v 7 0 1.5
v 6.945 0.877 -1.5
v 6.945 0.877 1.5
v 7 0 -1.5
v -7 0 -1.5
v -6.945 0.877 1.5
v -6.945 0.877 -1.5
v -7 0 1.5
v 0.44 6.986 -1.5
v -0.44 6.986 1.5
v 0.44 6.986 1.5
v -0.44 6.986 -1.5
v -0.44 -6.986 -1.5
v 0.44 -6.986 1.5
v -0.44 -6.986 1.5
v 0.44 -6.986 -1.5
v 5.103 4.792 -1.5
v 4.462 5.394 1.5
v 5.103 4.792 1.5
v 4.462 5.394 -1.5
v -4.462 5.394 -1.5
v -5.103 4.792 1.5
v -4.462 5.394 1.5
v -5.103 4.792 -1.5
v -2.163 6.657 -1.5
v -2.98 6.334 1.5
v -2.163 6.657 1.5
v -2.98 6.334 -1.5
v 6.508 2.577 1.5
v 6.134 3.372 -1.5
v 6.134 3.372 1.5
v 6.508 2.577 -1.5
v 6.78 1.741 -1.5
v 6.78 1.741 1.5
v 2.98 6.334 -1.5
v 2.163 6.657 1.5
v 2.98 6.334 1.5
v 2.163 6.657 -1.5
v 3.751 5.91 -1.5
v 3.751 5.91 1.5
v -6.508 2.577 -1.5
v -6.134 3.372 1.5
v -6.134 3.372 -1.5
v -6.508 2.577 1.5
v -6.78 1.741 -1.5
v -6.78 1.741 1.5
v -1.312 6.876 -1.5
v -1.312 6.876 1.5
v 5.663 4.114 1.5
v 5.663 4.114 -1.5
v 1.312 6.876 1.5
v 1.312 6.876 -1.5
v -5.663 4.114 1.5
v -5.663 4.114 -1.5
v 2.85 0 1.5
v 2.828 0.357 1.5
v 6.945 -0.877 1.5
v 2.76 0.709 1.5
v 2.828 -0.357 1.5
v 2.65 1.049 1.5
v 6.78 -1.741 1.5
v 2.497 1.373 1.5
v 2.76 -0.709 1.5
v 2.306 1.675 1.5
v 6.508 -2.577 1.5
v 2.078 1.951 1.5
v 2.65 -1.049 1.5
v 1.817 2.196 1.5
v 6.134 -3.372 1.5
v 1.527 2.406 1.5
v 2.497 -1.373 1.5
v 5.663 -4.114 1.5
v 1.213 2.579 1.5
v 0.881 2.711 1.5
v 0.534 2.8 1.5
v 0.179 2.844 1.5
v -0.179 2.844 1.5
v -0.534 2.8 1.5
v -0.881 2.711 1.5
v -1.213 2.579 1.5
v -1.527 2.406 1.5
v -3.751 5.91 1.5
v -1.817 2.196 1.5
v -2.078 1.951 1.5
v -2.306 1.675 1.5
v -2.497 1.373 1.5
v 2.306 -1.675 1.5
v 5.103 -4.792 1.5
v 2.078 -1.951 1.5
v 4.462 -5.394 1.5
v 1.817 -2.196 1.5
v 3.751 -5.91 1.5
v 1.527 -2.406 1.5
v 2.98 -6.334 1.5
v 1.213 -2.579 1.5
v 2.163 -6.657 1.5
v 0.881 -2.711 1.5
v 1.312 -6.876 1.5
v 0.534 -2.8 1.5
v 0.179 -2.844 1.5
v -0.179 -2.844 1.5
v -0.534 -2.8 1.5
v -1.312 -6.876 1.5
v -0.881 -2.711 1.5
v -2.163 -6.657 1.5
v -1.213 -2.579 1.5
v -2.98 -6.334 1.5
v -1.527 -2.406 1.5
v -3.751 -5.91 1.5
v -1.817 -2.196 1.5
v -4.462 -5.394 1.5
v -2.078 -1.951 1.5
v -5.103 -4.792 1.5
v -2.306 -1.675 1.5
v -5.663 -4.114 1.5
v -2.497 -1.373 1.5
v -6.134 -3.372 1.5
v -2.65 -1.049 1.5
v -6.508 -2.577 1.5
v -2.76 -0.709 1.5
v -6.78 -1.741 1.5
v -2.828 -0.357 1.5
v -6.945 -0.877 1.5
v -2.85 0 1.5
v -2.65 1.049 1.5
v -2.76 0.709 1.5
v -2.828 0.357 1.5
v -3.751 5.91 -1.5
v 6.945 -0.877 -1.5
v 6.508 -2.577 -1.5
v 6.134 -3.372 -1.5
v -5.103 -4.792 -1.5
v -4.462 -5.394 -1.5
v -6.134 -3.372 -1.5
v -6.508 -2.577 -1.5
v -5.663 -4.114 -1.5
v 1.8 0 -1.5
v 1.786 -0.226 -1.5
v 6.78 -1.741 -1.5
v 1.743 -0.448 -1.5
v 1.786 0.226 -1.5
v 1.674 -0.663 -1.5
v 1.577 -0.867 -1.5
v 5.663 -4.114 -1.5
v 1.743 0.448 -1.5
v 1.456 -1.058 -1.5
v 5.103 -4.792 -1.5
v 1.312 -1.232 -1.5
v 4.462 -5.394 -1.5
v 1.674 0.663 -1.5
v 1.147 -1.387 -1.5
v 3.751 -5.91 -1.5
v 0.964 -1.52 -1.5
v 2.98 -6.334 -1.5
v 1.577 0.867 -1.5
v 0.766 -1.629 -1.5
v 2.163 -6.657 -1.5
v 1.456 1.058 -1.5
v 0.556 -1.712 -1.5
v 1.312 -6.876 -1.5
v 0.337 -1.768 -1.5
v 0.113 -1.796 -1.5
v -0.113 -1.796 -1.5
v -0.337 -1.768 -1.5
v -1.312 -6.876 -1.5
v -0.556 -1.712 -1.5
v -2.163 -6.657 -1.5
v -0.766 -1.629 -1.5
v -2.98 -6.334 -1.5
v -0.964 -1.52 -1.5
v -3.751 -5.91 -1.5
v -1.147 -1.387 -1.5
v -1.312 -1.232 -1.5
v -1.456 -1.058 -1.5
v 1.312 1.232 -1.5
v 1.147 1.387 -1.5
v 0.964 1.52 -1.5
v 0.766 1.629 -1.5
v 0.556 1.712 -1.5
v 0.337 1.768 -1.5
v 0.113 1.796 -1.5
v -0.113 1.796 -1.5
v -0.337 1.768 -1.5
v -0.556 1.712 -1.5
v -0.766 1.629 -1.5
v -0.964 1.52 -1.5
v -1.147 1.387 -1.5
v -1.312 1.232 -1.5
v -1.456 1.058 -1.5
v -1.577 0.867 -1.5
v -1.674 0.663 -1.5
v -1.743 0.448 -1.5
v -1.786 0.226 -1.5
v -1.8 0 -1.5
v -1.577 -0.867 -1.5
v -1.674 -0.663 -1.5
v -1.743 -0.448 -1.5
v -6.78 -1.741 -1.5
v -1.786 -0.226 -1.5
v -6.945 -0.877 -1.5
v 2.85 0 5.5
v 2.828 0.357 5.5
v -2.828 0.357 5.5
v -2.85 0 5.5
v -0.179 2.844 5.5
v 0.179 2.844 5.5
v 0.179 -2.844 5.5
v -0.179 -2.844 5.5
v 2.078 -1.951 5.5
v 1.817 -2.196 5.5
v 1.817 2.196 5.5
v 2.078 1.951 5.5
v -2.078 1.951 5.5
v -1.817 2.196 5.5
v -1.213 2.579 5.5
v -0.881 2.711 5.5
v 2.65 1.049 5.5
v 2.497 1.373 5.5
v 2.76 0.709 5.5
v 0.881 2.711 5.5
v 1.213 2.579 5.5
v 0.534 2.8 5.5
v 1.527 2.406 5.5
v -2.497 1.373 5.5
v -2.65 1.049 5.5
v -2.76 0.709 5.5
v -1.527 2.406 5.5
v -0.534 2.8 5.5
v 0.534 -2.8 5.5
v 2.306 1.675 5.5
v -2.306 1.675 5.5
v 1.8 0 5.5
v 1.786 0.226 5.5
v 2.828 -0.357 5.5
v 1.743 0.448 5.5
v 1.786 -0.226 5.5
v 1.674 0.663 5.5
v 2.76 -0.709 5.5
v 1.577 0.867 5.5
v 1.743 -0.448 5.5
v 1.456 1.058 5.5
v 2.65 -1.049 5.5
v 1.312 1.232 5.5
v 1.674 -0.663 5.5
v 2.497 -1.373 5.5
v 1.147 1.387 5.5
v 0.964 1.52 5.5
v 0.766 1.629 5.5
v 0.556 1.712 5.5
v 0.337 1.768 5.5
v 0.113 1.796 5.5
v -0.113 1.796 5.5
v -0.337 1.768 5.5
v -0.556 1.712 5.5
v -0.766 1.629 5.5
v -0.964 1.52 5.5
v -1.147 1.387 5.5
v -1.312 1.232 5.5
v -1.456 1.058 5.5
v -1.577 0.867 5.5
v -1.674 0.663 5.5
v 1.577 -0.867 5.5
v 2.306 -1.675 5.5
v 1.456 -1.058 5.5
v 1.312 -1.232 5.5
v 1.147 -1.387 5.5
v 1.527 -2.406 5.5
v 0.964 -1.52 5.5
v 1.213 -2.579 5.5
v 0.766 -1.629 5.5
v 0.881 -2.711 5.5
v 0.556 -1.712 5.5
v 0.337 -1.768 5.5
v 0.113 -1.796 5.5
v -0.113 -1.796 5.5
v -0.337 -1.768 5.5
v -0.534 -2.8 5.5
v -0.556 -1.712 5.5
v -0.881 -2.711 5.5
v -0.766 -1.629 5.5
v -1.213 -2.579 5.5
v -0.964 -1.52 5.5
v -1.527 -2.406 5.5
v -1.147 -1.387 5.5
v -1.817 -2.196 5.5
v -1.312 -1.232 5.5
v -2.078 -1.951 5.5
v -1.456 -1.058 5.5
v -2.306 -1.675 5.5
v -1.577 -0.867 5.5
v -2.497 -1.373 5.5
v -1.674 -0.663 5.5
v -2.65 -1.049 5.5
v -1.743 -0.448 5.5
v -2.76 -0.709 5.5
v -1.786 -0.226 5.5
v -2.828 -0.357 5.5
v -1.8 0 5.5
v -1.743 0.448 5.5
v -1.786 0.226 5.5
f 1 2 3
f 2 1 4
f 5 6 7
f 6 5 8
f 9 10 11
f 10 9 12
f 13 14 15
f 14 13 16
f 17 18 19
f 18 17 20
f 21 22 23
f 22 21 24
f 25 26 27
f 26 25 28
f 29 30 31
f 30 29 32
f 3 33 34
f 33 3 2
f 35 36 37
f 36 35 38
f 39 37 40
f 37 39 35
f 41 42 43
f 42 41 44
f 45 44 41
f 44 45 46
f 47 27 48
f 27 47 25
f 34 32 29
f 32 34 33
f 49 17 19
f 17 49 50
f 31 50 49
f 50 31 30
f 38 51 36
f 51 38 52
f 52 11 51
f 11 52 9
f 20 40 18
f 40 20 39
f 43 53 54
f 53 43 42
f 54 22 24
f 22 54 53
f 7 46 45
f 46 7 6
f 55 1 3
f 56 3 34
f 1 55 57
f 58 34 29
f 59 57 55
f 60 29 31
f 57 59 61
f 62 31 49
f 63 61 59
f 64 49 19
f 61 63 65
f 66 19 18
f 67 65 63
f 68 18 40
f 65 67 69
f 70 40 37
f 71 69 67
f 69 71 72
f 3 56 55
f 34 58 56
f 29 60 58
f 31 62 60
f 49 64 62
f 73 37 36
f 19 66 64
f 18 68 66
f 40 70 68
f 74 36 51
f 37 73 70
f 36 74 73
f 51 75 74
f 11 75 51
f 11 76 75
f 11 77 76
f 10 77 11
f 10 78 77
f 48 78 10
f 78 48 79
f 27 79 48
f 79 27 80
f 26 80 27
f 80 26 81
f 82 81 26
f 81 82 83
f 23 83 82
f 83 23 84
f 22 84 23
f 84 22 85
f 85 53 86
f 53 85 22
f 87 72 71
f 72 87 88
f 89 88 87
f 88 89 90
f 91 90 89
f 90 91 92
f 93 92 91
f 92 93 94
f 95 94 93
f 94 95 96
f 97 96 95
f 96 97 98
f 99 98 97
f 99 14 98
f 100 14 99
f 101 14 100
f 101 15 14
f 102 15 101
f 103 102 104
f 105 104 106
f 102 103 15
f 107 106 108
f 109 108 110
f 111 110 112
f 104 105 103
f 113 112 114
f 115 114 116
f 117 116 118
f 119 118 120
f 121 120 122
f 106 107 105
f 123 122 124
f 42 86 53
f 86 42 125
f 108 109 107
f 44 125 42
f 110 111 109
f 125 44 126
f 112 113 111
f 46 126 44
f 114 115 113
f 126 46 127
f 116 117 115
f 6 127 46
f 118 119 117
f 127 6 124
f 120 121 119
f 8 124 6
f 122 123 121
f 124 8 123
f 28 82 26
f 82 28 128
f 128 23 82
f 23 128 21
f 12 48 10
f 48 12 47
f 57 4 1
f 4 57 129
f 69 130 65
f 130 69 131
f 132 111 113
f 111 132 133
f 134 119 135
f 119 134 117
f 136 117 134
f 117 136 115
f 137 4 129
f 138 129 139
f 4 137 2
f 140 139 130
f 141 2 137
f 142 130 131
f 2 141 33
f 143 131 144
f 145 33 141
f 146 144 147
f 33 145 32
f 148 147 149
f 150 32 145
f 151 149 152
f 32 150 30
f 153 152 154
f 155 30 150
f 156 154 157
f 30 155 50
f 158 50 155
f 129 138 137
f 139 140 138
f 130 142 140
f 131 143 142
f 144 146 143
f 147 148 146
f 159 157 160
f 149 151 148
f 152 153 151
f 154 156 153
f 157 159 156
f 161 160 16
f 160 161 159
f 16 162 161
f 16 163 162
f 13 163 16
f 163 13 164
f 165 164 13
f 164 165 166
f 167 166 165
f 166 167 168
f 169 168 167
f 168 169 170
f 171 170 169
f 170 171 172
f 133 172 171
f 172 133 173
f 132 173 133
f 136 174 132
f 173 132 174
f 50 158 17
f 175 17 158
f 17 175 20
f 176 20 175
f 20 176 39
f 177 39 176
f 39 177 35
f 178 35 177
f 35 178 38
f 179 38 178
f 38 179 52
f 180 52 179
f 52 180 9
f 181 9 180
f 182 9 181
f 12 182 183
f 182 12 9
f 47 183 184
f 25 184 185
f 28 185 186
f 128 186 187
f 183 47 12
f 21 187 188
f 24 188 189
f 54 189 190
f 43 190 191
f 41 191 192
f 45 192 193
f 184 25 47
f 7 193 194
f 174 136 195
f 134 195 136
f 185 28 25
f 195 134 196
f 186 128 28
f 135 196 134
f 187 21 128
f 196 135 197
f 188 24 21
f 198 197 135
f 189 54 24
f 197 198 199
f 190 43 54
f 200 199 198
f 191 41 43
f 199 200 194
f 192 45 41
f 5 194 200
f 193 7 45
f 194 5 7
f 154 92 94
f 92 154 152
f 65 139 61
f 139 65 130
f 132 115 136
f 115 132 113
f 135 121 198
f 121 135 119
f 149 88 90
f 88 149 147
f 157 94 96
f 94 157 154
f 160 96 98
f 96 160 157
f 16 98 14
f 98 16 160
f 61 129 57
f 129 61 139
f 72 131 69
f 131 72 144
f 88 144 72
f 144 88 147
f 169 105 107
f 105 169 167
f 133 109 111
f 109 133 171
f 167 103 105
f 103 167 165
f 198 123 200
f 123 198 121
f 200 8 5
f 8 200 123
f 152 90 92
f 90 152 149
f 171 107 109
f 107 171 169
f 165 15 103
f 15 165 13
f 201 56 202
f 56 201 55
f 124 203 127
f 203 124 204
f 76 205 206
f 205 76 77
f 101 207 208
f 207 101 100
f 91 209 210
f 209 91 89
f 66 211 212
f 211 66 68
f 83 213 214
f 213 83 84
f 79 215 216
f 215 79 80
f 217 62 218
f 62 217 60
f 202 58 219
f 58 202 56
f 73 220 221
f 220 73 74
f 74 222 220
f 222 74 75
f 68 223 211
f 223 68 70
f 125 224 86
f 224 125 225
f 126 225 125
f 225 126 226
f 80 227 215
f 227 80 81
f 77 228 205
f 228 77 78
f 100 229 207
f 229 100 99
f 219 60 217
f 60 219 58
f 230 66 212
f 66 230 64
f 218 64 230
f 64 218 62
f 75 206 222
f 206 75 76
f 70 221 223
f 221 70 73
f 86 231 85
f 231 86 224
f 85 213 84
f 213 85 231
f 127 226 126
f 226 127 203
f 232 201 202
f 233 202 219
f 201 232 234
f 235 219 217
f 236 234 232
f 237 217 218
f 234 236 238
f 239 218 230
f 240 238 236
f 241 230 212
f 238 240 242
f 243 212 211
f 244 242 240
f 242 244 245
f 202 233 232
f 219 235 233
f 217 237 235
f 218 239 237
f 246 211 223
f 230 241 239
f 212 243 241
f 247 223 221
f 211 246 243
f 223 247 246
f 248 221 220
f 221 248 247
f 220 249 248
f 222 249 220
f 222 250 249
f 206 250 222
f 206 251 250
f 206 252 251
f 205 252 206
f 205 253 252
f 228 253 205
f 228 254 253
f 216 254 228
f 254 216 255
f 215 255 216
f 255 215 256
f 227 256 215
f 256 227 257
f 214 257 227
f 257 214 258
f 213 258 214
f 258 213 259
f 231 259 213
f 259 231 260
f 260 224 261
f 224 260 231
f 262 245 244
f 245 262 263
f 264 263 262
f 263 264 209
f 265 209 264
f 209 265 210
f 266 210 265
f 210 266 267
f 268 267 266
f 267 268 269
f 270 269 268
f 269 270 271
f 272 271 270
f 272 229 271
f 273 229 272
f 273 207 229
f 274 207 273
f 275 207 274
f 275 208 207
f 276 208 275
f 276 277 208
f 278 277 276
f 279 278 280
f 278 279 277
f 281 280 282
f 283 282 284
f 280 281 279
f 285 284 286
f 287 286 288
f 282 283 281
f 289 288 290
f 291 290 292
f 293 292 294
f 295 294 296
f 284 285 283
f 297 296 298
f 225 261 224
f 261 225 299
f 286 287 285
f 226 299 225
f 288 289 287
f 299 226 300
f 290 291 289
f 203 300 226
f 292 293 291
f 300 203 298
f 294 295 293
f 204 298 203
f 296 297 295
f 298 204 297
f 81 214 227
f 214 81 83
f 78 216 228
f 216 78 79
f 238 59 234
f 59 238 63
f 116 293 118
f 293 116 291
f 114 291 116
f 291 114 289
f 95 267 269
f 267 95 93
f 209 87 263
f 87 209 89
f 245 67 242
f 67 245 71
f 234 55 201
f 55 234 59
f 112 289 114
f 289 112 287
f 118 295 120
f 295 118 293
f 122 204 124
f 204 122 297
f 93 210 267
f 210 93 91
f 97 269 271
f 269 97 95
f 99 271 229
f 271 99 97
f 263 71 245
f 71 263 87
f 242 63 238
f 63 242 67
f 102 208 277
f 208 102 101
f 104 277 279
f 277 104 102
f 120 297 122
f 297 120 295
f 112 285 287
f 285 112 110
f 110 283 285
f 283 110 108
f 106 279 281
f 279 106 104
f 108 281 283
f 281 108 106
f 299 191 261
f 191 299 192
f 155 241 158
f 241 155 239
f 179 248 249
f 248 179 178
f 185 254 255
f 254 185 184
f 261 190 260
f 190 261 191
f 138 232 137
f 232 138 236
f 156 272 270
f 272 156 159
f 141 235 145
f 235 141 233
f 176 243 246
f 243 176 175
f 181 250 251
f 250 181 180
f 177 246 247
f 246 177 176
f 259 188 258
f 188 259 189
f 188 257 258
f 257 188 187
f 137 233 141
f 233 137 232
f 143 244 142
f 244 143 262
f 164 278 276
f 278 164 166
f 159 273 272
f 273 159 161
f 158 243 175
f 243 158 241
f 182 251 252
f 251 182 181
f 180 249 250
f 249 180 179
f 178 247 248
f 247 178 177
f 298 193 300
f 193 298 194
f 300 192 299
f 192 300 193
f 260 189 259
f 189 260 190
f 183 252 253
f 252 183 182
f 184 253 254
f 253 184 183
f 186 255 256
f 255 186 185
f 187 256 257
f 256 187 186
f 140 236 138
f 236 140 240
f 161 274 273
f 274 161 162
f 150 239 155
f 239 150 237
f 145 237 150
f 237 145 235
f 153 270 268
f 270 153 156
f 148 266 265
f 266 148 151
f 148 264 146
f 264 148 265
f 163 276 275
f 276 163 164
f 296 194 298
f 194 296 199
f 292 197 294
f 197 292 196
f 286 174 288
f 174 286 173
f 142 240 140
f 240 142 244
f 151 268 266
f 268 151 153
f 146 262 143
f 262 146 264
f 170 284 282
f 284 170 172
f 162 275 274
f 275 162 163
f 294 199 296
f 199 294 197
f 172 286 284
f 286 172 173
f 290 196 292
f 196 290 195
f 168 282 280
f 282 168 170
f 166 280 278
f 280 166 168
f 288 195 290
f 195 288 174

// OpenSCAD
$fn = 50;


difference() {
	union() {
		translate(v = [0, 0, -1.5000000000]) {
			rotate(a = [0, 0, 0]) {
				cylinder(h = 3, r = 7.0000000000);
			}
		}
		translate(v = [0, 0, -1.5000000000]) {
			rotate(a = [0, 0, 0]) {
				cylinder(h = 7, r = 2.8500000000);
			}
		}
	}
	union() {
		translate(v = [0, 0, -125.0000000000]) {
			rotate(a = [0, 0, 0]) {
				cylinder(h = 250, r = 1.8000000000);
			}
		}
	}
}
